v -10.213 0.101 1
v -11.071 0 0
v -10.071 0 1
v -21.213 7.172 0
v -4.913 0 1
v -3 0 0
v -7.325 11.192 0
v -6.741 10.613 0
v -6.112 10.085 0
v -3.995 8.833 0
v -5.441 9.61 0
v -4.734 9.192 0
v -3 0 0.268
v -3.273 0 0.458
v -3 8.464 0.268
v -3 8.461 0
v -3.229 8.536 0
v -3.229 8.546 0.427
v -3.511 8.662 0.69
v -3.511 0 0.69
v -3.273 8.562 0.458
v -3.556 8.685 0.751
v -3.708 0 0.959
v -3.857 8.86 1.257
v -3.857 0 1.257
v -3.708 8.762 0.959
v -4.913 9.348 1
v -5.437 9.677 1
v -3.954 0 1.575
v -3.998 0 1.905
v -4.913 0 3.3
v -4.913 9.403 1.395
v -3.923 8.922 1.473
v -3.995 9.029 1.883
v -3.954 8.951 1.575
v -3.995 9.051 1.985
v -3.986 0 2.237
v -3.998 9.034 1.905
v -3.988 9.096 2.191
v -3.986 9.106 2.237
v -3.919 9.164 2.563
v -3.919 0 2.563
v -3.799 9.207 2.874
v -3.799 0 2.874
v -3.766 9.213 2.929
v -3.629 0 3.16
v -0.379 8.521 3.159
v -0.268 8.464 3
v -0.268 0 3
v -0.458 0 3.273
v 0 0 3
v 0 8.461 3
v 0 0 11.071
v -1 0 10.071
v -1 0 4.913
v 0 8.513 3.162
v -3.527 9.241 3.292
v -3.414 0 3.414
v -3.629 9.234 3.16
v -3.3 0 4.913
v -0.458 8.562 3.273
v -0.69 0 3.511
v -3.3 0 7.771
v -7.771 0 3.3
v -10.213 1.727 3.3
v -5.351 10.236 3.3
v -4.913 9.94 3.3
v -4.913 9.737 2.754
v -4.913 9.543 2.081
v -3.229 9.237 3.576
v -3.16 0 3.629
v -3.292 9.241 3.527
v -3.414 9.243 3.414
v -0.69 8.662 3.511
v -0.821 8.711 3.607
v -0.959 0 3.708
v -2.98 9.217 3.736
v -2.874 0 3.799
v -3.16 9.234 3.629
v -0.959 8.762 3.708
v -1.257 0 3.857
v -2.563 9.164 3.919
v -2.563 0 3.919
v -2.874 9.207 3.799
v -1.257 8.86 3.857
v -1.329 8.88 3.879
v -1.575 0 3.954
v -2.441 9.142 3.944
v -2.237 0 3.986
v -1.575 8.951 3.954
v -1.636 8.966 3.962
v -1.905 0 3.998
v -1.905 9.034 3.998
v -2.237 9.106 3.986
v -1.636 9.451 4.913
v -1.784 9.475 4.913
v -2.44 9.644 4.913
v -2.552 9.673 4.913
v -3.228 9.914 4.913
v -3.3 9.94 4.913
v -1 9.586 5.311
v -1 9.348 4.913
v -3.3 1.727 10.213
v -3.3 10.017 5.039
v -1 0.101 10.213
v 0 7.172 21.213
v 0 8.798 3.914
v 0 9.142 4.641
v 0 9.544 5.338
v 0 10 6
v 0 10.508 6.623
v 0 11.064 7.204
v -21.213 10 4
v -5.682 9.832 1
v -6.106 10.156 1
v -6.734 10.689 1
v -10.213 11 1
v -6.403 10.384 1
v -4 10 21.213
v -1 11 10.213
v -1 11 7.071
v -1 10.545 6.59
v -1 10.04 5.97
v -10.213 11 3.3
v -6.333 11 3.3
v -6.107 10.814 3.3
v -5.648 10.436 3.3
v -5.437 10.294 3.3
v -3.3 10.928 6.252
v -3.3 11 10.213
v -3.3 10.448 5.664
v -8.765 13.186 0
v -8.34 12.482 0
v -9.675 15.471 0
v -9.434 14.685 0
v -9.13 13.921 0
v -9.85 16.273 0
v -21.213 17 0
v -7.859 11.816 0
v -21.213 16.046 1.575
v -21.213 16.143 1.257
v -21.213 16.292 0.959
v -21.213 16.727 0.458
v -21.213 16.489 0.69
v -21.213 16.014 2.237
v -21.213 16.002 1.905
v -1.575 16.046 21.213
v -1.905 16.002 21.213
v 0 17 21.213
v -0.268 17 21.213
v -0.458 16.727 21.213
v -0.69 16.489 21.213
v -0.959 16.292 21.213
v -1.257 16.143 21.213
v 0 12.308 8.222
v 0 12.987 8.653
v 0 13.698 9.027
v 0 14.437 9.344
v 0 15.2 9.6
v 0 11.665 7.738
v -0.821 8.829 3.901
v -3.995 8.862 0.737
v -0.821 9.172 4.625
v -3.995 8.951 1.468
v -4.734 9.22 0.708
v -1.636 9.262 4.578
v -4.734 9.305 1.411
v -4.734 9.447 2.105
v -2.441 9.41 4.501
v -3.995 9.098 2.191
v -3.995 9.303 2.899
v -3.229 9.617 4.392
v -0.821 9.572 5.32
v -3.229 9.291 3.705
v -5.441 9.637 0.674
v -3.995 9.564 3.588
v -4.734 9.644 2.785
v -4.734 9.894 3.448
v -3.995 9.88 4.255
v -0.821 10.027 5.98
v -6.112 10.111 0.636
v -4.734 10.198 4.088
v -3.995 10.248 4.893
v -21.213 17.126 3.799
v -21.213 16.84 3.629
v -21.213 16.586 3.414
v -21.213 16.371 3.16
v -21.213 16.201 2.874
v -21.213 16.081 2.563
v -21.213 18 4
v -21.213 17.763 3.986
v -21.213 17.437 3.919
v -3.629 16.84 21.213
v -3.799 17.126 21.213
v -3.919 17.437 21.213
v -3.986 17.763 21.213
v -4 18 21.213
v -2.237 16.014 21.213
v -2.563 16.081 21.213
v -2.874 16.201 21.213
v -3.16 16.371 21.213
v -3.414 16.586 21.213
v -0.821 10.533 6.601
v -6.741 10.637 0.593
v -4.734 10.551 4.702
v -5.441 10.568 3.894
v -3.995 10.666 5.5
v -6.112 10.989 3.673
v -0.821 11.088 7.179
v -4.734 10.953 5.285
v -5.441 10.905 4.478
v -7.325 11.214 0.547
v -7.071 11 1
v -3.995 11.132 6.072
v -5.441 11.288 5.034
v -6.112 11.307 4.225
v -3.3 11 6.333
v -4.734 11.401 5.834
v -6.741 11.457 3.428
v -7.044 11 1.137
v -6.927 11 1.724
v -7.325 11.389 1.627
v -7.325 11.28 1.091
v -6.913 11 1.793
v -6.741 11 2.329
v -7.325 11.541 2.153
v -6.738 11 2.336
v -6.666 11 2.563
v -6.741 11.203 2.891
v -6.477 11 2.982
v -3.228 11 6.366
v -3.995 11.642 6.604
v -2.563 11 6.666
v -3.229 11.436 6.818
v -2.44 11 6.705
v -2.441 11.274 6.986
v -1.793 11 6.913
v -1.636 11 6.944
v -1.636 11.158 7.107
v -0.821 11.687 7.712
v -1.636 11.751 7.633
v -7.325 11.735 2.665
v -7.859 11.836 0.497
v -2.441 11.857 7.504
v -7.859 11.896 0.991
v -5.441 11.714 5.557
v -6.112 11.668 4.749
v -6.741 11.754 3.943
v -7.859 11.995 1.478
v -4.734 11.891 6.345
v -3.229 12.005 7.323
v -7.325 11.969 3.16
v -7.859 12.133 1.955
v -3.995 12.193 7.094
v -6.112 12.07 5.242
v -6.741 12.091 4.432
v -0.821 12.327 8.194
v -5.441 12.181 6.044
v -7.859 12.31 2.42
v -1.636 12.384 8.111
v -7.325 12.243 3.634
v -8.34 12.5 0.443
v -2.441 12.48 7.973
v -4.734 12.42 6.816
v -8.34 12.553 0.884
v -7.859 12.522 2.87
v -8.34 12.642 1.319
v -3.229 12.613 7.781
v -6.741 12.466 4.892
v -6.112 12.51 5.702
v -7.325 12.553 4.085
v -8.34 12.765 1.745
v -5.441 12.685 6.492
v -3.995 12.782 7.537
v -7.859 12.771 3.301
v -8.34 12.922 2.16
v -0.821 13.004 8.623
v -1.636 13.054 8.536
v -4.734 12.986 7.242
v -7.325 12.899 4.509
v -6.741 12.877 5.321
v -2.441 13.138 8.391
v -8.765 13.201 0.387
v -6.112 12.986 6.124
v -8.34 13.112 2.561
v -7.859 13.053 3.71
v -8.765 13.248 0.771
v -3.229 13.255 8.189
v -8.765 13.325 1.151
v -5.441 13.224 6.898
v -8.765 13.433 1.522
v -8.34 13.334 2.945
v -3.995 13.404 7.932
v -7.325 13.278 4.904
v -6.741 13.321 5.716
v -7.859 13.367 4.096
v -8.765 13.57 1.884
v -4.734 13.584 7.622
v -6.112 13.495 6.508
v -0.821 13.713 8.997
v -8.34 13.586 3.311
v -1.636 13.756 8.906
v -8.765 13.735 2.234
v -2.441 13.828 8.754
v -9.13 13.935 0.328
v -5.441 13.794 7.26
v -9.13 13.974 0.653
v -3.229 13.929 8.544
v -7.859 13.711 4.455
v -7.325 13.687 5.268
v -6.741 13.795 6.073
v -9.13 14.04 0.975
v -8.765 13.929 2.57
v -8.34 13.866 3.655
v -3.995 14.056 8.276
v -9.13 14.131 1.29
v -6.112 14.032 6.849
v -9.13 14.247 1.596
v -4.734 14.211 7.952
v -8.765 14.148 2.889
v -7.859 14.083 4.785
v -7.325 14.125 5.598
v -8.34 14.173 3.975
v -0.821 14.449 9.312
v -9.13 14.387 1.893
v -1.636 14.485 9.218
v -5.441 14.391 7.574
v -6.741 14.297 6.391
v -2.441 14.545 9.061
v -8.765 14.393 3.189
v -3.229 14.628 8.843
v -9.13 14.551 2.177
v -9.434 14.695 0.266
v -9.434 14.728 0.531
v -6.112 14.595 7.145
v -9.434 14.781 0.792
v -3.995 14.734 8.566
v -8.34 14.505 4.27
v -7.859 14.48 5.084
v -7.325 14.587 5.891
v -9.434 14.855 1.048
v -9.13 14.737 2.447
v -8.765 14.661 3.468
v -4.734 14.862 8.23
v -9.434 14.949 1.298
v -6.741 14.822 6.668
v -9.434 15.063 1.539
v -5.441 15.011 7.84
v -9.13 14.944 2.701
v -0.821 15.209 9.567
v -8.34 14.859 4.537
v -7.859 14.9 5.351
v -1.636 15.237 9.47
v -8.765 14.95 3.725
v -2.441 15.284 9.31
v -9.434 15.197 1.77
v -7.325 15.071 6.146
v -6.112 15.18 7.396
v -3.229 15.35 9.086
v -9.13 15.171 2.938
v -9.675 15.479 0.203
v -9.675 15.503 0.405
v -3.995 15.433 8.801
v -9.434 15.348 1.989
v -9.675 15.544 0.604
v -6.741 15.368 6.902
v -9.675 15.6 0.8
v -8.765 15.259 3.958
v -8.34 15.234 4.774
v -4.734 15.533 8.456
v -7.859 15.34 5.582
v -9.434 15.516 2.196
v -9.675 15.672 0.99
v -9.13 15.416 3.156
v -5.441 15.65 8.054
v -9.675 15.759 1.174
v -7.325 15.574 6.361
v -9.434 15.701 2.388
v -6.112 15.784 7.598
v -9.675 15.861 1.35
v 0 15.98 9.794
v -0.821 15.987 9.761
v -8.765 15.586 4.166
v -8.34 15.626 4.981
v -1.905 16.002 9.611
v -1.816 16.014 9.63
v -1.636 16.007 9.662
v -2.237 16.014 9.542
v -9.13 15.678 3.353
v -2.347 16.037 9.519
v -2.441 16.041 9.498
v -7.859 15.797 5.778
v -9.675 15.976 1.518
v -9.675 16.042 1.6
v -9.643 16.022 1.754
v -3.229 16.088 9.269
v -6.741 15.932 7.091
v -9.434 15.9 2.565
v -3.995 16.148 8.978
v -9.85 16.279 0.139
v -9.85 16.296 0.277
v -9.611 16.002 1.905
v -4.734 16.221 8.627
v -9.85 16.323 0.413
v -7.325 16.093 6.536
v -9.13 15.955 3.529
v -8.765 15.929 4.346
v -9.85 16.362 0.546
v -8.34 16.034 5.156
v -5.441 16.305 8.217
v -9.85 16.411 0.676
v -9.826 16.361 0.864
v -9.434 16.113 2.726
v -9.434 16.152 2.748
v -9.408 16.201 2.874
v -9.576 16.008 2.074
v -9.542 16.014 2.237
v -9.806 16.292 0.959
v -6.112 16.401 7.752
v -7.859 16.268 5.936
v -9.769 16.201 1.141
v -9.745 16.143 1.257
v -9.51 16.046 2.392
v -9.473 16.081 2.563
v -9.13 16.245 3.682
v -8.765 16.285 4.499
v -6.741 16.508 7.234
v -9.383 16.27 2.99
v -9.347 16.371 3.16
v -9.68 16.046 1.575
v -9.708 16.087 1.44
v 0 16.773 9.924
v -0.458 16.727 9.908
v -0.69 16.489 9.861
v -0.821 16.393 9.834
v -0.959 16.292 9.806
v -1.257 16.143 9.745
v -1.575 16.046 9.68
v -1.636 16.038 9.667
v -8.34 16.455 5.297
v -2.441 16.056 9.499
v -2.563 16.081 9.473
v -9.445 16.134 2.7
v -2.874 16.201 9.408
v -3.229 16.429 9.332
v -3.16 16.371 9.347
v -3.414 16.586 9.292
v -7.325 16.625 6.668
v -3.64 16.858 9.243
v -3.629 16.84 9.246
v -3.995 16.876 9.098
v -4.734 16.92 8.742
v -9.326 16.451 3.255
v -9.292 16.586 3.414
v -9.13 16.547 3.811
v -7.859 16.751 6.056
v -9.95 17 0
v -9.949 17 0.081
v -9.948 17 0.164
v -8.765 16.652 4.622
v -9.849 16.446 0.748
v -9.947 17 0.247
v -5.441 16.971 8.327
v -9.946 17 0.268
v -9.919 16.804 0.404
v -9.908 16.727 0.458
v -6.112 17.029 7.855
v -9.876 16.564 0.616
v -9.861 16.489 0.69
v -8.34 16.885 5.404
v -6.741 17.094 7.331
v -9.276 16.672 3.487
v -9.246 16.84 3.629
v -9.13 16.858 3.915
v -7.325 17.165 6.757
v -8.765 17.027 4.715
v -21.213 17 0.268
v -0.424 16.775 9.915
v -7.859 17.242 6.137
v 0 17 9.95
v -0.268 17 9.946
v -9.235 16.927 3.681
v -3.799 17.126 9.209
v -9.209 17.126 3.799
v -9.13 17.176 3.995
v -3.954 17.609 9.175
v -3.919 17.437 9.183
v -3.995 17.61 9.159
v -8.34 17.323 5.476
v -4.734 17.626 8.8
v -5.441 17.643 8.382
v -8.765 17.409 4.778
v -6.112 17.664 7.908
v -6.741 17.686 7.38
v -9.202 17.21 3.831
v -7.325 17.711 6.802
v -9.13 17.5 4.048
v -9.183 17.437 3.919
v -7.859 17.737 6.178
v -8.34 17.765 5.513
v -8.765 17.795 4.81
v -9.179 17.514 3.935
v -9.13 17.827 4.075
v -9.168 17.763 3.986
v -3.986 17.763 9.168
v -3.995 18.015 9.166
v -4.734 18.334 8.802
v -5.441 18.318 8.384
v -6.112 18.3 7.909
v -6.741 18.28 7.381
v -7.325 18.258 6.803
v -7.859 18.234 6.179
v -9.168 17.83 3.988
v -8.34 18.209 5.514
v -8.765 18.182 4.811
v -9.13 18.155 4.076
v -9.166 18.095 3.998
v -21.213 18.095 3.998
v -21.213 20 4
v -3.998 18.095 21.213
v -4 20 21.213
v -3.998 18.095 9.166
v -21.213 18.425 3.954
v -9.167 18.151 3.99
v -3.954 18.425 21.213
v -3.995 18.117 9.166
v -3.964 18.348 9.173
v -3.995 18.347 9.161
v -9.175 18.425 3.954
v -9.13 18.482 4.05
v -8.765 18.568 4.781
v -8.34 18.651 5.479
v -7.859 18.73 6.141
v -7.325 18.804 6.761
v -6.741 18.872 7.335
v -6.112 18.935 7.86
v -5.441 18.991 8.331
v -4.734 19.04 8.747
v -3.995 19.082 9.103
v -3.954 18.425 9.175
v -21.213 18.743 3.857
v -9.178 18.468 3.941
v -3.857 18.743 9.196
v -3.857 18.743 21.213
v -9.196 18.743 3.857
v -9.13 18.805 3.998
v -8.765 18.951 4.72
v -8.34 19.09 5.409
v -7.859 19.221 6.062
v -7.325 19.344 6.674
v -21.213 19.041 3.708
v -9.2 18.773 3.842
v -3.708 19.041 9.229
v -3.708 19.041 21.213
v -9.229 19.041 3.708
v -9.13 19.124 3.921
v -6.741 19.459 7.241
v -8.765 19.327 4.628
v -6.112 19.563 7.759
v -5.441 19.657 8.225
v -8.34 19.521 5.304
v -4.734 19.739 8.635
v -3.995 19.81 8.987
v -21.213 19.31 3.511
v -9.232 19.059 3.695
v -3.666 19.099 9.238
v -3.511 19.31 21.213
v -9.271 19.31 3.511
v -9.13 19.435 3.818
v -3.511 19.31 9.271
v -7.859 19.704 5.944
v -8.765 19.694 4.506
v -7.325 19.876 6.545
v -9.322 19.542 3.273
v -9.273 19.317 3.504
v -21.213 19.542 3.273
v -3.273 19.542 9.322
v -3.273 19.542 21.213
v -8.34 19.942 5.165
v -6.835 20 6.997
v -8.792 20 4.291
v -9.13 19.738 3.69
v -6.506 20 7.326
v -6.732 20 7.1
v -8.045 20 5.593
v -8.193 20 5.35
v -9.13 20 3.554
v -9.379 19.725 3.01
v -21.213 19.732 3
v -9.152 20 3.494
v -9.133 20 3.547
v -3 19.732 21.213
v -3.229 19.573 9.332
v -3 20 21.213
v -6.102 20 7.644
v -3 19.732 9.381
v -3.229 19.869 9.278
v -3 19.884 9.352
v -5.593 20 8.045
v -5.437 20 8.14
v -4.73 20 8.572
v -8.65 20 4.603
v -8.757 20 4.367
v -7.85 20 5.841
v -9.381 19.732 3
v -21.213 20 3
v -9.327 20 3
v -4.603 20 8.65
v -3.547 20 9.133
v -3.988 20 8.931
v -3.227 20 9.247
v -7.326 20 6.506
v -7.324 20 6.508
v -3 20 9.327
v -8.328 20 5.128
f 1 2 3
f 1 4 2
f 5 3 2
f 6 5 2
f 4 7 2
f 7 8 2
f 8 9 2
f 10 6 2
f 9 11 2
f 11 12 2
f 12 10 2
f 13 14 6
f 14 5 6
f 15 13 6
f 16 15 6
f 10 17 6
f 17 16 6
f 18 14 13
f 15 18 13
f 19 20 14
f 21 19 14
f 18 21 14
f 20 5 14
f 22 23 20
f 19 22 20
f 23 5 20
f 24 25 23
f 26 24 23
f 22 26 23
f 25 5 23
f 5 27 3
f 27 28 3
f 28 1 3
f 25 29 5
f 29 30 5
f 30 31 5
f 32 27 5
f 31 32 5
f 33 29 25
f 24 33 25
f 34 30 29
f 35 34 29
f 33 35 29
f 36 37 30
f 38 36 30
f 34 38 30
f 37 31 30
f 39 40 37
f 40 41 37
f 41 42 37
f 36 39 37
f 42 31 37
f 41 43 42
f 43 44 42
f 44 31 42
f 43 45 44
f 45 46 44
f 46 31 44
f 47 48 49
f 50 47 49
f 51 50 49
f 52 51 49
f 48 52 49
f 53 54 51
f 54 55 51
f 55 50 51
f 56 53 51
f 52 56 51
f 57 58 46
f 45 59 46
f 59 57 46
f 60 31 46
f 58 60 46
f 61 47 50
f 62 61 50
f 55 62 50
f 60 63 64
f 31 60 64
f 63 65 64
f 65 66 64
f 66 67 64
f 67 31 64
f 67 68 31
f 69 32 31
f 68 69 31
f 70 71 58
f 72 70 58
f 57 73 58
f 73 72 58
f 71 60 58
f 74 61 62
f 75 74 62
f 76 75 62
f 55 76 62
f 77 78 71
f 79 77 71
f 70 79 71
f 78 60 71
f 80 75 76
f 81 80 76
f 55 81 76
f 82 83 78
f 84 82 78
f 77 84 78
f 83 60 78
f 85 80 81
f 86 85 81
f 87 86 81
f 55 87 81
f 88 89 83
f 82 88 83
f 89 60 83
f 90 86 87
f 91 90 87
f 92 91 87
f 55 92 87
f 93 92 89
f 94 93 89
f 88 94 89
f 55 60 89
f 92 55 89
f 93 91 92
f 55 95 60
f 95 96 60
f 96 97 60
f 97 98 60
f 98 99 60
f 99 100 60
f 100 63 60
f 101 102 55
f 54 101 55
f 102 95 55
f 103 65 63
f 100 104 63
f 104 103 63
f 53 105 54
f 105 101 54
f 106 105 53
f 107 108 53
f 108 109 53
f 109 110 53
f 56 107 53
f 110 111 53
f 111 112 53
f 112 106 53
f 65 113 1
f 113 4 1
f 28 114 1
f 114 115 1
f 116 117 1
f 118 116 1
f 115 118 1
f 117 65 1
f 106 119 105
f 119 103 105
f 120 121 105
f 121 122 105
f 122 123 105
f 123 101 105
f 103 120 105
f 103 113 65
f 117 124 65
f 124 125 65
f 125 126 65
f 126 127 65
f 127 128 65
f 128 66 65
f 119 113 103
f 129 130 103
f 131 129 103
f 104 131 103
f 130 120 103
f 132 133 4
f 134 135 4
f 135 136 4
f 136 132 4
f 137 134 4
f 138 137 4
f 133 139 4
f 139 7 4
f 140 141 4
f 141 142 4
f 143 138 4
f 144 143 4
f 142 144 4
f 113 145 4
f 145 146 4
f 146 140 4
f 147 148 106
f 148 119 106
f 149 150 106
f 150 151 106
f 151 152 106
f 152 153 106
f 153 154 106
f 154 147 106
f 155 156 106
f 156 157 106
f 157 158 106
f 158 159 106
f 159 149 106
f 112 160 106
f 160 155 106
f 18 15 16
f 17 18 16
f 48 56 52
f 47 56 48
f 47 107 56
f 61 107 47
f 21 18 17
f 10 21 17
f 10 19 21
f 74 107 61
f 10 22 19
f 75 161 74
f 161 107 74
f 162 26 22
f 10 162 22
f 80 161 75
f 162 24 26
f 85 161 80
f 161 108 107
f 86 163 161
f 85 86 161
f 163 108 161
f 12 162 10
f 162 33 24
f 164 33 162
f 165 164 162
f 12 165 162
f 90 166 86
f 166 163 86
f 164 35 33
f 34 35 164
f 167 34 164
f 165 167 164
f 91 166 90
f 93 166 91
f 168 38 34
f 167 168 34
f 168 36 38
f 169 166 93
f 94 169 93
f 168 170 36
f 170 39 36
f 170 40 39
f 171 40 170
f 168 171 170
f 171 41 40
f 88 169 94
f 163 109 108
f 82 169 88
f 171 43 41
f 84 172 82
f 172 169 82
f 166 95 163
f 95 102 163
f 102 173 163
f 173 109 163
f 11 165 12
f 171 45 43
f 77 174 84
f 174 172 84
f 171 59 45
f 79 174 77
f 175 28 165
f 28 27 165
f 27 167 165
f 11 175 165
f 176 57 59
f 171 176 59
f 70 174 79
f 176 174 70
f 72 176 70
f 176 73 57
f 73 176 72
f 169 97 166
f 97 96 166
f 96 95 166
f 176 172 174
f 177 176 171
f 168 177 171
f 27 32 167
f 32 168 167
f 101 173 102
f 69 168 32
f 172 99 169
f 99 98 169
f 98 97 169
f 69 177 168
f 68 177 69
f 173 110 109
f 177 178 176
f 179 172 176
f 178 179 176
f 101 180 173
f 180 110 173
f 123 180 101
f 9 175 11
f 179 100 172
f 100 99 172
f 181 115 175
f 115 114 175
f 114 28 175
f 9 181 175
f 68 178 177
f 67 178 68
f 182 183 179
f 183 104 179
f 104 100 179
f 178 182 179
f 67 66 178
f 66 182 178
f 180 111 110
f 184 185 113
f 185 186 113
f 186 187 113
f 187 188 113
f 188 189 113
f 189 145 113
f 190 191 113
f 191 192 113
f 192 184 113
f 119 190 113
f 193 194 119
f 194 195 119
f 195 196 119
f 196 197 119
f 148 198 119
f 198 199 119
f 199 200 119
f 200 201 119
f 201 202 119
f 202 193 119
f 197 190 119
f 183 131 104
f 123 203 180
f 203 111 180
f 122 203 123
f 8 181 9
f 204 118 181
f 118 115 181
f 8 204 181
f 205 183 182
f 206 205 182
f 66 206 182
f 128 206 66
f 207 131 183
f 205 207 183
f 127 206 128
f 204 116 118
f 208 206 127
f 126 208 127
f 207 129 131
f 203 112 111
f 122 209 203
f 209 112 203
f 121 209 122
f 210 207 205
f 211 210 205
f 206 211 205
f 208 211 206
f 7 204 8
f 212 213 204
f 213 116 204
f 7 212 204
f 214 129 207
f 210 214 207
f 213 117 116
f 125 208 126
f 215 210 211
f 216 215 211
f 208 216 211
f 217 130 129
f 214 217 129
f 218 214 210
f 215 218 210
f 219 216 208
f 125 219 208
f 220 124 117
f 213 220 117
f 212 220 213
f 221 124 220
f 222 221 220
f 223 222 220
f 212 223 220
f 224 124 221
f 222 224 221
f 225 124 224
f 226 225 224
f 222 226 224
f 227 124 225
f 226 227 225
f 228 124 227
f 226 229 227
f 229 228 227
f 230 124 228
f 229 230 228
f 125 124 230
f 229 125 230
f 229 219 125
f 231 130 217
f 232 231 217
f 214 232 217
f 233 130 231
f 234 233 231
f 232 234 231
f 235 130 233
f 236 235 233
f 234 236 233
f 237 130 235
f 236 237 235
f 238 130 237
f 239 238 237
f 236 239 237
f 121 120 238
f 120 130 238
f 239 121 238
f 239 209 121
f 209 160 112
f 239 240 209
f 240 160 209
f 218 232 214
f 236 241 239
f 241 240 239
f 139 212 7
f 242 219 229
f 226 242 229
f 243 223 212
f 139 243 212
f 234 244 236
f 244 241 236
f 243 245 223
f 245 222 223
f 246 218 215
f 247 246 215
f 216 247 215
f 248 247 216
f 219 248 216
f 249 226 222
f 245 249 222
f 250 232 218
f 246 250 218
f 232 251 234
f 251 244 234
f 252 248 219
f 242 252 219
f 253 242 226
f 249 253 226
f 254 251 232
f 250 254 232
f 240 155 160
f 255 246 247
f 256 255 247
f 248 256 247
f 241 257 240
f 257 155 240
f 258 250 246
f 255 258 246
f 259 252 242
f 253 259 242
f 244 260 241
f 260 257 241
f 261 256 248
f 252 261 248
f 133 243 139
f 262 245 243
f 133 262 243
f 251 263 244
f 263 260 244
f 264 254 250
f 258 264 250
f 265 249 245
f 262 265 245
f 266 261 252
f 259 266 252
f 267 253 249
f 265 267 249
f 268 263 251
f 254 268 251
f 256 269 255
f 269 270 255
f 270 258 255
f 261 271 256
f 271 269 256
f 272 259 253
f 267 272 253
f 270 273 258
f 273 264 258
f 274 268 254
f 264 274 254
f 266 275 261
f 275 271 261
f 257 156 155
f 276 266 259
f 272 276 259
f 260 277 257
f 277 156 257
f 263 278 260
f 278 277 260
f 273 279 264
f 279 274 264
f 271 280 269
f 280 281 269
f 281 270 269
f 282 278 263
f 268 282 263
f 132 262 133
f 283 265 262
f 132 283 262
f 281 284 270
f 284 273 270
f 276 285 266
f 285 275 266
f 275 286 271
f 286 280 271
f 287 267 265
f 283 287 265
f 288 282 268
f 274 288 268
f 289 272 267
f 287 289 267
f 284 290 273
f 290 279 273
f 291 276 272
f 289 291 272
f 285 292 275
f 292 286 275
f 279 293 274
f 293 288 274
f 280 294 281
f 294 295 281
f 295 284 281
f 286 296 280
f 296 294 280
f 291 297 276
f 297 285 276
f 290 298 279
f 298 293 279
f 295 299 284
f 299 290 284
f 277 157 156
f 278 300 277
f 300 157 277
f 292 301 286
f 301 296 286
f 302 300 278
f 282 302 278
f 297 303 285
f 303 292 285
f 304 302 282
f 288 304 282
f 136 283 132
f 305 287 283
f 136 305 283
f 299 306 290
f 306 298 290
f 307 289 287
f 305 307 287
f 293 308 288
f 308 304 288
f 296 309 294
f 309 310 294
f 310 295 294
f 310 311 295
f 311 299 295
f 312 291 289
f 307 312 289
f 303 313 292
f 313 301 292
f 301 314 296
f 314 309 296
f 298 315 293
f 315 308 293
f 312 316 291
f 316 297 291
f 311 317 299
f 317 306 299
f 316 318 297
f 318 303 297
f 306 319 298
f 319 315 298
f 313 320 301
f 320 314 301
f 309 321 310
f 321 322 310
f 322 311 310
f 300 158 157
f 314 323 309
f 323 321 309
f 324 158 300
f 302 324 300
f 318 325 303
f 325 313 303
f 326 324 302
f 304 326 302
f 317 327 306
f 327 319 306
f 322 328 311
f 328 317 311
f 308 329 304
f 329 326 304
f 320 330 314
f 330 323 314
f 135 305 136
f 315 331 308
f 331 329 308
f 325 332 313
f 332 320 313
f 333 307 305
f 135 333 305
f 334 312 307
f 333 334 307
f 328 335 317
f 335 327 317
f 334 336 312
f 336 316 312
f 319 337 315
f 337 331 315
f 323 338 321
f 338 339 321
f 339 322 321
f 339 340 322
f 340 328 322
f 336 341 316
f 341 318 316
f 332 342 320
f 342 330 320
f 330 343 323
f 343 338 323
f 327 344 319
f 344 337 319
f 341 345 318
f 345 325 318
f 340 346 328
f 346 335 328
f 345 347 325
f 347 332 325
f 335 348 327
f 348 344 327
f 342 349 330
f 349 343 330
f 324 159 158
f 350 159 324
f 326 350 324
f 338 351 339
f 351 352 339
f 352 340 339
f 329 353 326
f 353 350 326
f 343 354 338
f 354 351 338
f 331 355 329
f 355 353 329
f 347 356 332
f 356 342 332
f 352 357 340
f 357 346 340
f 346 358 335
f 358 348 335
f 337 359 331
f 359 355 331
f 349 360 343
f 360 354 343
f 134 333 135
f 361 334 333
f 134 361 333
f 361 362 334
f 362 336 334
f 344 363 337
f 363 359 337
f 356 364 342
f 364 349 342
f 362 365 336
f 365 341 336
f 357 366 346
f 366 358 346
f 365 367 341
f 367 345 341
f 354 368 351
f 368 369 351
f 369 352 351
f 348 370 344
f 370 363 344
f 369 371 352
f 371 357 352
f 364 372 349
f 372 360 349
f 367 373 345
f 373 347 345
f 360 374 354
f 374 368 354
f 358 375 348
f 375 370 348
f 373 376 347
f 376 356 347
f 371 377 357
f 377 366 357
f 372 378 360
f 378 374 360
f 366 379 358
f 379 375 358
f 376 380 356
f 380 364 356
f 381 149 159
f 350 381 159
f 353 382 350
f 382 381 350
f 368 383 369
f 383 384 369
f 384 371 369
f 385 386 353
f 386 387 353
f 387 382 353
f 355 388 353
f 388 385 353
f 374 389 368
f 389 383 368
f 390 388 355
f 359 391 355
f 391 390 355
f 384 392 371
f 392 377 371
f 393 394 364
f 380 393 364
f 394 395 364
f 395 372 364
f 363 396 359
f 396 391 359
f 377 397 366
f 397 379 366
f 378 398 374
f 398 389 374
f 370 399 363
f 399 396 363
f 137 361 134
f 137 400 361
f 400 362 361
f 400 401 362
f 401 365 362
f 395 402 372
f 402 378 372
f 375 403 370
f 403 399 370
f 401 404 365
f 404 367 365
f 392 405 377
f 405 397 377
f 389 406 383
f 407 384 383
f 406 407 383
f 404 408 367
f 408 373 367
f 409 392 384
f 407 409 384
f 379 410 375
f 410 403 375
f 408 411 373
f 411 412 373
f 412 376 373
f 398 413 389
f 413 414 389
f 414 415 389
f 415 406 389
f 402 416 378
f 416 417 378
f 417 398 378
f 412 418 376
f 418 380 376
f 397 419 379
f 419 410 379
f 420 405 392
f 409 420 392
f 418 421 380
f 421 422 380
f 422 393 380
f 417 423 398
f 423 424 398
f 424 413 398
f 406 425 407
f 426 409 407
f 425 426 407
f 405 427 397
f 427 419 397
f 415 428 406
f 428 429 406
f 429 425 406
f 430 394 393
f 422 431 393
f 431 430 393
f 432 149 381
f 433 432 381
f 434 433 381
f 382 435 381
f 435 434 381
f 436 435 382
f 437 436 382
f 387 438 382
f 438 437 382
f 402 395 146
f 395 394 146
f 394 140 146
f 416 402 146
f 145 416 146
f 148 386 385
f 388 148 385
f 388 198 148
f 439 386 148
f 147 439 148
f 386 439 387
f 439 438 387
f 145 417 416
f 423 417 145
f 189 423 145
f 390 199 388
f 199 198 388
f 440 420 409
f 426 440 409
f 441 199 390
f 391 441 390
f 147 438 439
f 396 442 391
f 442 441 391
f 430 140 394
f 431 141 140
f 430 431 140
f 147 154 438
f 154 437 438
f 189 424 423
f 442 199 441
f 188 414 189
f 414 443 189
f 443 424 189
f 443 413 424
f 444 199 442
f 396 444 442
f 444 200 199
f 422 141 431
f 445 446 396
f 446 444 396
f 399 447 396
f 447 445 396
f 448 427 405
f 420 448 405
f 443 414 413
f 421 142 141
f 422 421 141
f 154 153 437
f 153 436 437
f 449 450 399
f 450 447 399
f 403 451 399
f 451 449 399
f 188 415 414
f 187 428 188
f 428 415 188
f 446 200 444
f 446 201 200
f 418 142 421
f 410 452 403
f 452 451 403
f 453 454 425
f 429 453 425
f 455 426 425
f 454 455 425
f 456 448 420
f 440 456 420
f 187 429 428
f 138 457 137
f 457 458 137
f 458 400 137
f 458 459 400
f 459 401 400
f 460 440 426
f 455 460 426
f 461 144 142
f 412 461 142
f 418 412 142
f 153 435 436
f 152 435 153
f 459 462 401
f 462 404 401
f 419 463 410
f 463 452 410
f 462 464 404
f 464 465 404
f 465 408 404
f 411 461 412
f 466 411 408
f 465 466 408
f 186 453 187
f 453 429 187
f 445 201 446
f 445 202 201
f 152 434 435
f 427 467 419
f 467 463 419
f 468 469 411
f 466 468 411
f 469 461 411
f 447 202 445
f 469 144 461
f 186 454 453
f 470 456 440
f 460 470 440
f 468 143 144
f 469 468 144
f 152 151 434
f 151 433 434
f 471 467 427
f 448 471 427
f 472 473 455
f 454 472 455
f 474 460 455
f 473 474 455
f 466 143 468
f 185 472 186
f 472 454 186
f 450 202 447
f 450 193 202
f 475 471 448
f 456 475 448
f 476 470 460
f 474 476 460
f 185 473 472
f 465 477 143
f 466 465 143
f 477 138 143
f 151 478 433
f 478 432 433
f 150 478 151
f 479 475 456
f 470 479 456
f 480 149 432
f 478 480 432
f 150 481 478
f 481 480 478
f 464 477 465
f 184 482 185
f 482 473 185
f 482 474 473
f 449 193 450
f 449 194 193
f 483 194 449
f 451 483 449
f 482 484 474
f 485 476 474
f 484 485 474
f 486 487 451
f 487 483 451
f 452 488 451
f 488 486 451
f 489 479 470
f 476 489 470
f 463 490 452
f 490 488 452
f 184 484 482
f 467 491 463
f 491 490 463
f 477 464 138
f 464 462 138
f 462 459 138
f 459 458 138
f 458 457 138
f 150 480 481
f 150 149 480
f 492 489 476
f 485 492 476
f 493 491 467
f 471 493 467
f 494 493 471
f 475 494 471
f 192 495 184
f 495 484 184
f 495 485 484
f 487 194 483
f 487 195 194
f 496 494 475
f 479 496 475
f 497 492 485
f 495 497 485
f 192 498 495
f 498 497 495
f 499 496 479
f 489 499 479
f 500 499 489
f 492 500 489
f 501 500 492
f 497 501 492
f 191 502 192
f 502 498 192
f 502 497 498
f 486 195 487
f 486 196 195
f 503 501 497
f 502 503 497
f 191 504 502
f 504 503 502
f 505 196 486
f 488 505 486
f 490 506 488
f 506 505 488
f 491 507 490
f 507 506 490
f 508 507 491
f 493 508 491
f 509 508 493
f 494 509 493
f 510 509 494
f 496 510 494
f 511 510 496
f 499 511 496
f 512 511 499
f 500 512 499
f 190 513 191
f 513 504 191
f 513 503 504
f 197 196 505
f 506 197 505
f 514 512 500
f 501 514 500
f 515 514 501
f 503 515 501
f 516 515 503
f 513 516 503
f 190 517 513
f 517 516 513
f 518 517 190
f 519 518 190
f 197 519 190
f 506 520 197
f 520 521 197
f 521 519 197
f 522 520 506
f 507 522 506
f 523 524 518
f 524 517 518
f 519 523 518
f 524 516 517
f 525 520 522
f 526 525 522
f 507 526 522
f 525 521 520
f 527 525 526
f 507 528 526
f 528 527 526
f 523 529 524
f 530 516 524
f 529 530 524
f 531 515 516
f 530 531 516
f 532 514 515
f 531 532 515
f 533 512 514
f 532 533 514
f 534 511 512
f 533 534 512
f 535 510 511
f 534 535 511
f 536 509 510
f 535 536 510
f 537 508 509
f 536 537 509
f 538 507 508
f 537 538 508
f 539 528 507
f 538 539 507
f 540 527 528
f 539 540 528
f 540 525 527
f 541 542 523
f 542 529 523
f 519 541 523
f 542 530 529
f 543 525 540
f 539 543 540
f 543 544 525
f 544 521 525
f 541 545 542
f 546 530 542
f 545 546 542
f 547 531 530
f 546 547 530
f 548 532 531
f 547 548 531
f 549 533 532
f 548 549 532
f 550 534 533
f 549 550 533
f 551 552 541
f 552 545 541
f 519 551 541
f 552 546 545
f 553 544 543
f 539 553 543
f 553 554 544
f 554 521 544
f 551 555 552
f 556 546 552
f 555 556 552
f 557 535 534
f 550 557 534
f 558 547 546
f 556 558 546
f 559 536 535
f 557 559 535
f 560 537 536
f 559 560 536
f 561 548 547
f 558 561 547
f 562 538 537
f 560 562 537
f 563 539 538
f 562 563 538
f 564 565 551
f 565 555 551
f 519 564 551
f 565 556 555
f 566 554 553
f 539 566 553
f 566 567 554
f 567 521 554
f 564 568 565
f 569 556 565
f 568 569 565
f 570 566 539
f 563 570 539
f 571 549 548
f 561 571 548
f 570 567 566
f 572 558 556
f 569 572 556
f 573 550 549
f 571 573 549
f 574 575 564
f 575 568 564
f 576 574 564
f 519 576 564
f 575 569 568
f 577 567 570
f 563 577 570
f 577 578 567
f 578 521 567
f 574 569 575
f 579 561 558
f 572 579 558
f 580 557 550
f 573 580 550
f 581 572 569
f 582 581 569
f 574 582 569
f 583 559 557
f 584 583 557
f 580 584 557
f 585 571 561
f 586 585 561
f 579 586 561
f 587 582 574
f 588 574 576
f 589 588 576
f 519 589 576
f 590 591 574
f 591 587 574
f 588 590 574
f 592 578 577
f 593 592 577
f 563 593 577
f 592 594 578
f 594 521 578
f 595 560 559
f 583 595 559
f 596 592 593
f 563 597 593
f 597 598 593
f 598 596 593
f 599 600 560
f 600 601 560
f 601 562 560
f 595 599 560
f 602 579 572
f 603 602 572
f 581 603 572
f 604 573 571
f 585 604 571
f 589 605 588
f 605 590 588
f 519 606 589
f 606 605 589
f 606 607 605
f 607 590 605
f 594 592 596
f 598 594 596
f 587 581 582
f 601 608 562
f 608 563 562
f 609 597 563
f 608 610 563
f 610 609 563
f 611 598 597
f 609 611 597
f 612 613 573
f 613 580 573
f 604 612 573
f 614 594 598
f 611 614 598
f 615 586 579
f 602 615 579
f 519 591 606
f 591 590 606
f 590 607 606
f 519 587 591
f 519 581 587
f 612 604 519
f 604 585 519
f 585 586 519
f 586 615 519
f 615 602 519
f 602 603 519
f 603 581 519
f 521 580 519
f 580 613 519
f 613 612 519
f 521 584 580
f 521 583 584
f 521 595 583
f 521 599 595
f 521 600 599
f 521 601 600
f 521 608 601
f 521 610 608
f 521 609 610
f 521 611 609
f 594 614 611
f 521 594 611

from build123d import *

# Parameters (mm, degrees)
EXTRUDE_1_DEPTH     = 20
CHAMFER_1_SIZE      = 10
CUT_EXTRUDE_2_REACH = 38.056
SKETCH_4_W          = 2.3
SKETCH_4_H          = 5.3
CUT_EXTRUDE_3_DEPTH = 11


with BuildPart() as part:
    # 草圖1 → 填料-伸長1 (new body)
    with BuildSketch(Plane(origin=(0, 0, 0), x_dir=(1, 0, 0), z_dir=(0, 1, 0))):
        with BuildLine():
            Line((0, -4), (0, -21.213203436))
            Line((0, -21.213203436), (-4, -21.213203436))
            Line((-4, -21.213203436), (-21.213203436, -4))
            Line((-21.213203436, -4), (-21.213203436, 0))
            Line((-21.213203436, 0), (-4, 0))
            Line((-4, 0), (-3, 0))
            Line((-3, 0), (-3, -0.267949192))
            ThreePointArc((-3, -0.267949192), (-3.414213562, -3.414213562), (-0.267949192, -3))
            Line((-0.267949192, -3), (0, -3))
            Line((0, -3), (0, -4))
        make_face()
    extrude(amount=EXTRUDE_1_DEPTH)

    # 導角1
    chamfer_1_edges = [part.edges().sort_by_distance(p)[0] for p in [
        (-12.606601718, 0, 12.606601718),
    ]]
    chamfer(chamfer_1_edges, length=CHAMFER_1_SIZE)

    # 草圖3 → 除料-伸長2 (cut, up to next)
    with BuildSketch(Plane.ZY.offset(21.213203436), mode=Mode.PRIVATE) as cut_extrude_2_sk1:
        with BuildLine():
            Line((3, 19.732050808), (3, 20))
            Line((3, 20), (0, 20))
            Line((0, 20), (0, 17))
            Line((0, 17), (0.267949192, 17))
            ThreePointArc((0.267949192, 17), (3.414213562, 16.585786438), (3, 19.732050808))
        make_face()
    cut_extrude_2_tool1 = extrude(cut_extrude_2_sk1.sketch, amount=-CUT_EXTRUDE_2_REACH, mode=Mode.PRIVATE) & part.part
    cut_extrude_2 = cut_extrude_2_tool1.solids().sort_by_distance((-21.213203, 18.105499, 1.894501))[0]
    add(cut_extrude_2, mode=Mode.SUBTRACT)

    # 鏡射1: 除料-伸長2 across plane
    add(cut_extrude_2.mirror(Plane(origin=(0, 0, 0), x_dir=(-0.7071067811865478, 0, 0.7071067811865472), z_dir=(0.7071067811865475, 0, 0.7071067811865477))), mode=Mode.SUBTRACT)

    # 草圖4 → 除料-伸長3 (cut)
    with BuildSketch(Plane.XZ):
        with Locations((-2.15, 7.563203436)):
            Rectangle(SKETCH_4_W, SKETCH_4_H)
    cut_extrude_3 = extrude(amount=-CUT_EXTRUDE_3_DEPTH, mode=Mode.SUBTRACT)

    # 鏡射2: 除料-伸長3 across plane
    add(cut_extrude_3.mirror(Plane(origin=(0, 0, 0), x_dir=(-0.7071067811865478, 0, 0.7071067811865472), z_dir=(0.7071067811865475, 0, 0.7071067811865477))), mode=Mode.SUBTRACT)

    # 草圖5 → 除料-旋轉1 (revolve, cut)
    with BuildSketch(Plane(origin=(0, 18, 0), x_dir=(1, 0, 0), z_dir=(0, 1, 0))):
        with BuildLine():
            Line((10, 0), (-10, 0))
            ThreePointArc((-10, 0), (0, -10), (10, 0))
        make_face()
    revolve(axis=Axis((10, 18, 0), (-1, 0, 0)), mode=Mode.SUBTRACT)


solid = part.part
